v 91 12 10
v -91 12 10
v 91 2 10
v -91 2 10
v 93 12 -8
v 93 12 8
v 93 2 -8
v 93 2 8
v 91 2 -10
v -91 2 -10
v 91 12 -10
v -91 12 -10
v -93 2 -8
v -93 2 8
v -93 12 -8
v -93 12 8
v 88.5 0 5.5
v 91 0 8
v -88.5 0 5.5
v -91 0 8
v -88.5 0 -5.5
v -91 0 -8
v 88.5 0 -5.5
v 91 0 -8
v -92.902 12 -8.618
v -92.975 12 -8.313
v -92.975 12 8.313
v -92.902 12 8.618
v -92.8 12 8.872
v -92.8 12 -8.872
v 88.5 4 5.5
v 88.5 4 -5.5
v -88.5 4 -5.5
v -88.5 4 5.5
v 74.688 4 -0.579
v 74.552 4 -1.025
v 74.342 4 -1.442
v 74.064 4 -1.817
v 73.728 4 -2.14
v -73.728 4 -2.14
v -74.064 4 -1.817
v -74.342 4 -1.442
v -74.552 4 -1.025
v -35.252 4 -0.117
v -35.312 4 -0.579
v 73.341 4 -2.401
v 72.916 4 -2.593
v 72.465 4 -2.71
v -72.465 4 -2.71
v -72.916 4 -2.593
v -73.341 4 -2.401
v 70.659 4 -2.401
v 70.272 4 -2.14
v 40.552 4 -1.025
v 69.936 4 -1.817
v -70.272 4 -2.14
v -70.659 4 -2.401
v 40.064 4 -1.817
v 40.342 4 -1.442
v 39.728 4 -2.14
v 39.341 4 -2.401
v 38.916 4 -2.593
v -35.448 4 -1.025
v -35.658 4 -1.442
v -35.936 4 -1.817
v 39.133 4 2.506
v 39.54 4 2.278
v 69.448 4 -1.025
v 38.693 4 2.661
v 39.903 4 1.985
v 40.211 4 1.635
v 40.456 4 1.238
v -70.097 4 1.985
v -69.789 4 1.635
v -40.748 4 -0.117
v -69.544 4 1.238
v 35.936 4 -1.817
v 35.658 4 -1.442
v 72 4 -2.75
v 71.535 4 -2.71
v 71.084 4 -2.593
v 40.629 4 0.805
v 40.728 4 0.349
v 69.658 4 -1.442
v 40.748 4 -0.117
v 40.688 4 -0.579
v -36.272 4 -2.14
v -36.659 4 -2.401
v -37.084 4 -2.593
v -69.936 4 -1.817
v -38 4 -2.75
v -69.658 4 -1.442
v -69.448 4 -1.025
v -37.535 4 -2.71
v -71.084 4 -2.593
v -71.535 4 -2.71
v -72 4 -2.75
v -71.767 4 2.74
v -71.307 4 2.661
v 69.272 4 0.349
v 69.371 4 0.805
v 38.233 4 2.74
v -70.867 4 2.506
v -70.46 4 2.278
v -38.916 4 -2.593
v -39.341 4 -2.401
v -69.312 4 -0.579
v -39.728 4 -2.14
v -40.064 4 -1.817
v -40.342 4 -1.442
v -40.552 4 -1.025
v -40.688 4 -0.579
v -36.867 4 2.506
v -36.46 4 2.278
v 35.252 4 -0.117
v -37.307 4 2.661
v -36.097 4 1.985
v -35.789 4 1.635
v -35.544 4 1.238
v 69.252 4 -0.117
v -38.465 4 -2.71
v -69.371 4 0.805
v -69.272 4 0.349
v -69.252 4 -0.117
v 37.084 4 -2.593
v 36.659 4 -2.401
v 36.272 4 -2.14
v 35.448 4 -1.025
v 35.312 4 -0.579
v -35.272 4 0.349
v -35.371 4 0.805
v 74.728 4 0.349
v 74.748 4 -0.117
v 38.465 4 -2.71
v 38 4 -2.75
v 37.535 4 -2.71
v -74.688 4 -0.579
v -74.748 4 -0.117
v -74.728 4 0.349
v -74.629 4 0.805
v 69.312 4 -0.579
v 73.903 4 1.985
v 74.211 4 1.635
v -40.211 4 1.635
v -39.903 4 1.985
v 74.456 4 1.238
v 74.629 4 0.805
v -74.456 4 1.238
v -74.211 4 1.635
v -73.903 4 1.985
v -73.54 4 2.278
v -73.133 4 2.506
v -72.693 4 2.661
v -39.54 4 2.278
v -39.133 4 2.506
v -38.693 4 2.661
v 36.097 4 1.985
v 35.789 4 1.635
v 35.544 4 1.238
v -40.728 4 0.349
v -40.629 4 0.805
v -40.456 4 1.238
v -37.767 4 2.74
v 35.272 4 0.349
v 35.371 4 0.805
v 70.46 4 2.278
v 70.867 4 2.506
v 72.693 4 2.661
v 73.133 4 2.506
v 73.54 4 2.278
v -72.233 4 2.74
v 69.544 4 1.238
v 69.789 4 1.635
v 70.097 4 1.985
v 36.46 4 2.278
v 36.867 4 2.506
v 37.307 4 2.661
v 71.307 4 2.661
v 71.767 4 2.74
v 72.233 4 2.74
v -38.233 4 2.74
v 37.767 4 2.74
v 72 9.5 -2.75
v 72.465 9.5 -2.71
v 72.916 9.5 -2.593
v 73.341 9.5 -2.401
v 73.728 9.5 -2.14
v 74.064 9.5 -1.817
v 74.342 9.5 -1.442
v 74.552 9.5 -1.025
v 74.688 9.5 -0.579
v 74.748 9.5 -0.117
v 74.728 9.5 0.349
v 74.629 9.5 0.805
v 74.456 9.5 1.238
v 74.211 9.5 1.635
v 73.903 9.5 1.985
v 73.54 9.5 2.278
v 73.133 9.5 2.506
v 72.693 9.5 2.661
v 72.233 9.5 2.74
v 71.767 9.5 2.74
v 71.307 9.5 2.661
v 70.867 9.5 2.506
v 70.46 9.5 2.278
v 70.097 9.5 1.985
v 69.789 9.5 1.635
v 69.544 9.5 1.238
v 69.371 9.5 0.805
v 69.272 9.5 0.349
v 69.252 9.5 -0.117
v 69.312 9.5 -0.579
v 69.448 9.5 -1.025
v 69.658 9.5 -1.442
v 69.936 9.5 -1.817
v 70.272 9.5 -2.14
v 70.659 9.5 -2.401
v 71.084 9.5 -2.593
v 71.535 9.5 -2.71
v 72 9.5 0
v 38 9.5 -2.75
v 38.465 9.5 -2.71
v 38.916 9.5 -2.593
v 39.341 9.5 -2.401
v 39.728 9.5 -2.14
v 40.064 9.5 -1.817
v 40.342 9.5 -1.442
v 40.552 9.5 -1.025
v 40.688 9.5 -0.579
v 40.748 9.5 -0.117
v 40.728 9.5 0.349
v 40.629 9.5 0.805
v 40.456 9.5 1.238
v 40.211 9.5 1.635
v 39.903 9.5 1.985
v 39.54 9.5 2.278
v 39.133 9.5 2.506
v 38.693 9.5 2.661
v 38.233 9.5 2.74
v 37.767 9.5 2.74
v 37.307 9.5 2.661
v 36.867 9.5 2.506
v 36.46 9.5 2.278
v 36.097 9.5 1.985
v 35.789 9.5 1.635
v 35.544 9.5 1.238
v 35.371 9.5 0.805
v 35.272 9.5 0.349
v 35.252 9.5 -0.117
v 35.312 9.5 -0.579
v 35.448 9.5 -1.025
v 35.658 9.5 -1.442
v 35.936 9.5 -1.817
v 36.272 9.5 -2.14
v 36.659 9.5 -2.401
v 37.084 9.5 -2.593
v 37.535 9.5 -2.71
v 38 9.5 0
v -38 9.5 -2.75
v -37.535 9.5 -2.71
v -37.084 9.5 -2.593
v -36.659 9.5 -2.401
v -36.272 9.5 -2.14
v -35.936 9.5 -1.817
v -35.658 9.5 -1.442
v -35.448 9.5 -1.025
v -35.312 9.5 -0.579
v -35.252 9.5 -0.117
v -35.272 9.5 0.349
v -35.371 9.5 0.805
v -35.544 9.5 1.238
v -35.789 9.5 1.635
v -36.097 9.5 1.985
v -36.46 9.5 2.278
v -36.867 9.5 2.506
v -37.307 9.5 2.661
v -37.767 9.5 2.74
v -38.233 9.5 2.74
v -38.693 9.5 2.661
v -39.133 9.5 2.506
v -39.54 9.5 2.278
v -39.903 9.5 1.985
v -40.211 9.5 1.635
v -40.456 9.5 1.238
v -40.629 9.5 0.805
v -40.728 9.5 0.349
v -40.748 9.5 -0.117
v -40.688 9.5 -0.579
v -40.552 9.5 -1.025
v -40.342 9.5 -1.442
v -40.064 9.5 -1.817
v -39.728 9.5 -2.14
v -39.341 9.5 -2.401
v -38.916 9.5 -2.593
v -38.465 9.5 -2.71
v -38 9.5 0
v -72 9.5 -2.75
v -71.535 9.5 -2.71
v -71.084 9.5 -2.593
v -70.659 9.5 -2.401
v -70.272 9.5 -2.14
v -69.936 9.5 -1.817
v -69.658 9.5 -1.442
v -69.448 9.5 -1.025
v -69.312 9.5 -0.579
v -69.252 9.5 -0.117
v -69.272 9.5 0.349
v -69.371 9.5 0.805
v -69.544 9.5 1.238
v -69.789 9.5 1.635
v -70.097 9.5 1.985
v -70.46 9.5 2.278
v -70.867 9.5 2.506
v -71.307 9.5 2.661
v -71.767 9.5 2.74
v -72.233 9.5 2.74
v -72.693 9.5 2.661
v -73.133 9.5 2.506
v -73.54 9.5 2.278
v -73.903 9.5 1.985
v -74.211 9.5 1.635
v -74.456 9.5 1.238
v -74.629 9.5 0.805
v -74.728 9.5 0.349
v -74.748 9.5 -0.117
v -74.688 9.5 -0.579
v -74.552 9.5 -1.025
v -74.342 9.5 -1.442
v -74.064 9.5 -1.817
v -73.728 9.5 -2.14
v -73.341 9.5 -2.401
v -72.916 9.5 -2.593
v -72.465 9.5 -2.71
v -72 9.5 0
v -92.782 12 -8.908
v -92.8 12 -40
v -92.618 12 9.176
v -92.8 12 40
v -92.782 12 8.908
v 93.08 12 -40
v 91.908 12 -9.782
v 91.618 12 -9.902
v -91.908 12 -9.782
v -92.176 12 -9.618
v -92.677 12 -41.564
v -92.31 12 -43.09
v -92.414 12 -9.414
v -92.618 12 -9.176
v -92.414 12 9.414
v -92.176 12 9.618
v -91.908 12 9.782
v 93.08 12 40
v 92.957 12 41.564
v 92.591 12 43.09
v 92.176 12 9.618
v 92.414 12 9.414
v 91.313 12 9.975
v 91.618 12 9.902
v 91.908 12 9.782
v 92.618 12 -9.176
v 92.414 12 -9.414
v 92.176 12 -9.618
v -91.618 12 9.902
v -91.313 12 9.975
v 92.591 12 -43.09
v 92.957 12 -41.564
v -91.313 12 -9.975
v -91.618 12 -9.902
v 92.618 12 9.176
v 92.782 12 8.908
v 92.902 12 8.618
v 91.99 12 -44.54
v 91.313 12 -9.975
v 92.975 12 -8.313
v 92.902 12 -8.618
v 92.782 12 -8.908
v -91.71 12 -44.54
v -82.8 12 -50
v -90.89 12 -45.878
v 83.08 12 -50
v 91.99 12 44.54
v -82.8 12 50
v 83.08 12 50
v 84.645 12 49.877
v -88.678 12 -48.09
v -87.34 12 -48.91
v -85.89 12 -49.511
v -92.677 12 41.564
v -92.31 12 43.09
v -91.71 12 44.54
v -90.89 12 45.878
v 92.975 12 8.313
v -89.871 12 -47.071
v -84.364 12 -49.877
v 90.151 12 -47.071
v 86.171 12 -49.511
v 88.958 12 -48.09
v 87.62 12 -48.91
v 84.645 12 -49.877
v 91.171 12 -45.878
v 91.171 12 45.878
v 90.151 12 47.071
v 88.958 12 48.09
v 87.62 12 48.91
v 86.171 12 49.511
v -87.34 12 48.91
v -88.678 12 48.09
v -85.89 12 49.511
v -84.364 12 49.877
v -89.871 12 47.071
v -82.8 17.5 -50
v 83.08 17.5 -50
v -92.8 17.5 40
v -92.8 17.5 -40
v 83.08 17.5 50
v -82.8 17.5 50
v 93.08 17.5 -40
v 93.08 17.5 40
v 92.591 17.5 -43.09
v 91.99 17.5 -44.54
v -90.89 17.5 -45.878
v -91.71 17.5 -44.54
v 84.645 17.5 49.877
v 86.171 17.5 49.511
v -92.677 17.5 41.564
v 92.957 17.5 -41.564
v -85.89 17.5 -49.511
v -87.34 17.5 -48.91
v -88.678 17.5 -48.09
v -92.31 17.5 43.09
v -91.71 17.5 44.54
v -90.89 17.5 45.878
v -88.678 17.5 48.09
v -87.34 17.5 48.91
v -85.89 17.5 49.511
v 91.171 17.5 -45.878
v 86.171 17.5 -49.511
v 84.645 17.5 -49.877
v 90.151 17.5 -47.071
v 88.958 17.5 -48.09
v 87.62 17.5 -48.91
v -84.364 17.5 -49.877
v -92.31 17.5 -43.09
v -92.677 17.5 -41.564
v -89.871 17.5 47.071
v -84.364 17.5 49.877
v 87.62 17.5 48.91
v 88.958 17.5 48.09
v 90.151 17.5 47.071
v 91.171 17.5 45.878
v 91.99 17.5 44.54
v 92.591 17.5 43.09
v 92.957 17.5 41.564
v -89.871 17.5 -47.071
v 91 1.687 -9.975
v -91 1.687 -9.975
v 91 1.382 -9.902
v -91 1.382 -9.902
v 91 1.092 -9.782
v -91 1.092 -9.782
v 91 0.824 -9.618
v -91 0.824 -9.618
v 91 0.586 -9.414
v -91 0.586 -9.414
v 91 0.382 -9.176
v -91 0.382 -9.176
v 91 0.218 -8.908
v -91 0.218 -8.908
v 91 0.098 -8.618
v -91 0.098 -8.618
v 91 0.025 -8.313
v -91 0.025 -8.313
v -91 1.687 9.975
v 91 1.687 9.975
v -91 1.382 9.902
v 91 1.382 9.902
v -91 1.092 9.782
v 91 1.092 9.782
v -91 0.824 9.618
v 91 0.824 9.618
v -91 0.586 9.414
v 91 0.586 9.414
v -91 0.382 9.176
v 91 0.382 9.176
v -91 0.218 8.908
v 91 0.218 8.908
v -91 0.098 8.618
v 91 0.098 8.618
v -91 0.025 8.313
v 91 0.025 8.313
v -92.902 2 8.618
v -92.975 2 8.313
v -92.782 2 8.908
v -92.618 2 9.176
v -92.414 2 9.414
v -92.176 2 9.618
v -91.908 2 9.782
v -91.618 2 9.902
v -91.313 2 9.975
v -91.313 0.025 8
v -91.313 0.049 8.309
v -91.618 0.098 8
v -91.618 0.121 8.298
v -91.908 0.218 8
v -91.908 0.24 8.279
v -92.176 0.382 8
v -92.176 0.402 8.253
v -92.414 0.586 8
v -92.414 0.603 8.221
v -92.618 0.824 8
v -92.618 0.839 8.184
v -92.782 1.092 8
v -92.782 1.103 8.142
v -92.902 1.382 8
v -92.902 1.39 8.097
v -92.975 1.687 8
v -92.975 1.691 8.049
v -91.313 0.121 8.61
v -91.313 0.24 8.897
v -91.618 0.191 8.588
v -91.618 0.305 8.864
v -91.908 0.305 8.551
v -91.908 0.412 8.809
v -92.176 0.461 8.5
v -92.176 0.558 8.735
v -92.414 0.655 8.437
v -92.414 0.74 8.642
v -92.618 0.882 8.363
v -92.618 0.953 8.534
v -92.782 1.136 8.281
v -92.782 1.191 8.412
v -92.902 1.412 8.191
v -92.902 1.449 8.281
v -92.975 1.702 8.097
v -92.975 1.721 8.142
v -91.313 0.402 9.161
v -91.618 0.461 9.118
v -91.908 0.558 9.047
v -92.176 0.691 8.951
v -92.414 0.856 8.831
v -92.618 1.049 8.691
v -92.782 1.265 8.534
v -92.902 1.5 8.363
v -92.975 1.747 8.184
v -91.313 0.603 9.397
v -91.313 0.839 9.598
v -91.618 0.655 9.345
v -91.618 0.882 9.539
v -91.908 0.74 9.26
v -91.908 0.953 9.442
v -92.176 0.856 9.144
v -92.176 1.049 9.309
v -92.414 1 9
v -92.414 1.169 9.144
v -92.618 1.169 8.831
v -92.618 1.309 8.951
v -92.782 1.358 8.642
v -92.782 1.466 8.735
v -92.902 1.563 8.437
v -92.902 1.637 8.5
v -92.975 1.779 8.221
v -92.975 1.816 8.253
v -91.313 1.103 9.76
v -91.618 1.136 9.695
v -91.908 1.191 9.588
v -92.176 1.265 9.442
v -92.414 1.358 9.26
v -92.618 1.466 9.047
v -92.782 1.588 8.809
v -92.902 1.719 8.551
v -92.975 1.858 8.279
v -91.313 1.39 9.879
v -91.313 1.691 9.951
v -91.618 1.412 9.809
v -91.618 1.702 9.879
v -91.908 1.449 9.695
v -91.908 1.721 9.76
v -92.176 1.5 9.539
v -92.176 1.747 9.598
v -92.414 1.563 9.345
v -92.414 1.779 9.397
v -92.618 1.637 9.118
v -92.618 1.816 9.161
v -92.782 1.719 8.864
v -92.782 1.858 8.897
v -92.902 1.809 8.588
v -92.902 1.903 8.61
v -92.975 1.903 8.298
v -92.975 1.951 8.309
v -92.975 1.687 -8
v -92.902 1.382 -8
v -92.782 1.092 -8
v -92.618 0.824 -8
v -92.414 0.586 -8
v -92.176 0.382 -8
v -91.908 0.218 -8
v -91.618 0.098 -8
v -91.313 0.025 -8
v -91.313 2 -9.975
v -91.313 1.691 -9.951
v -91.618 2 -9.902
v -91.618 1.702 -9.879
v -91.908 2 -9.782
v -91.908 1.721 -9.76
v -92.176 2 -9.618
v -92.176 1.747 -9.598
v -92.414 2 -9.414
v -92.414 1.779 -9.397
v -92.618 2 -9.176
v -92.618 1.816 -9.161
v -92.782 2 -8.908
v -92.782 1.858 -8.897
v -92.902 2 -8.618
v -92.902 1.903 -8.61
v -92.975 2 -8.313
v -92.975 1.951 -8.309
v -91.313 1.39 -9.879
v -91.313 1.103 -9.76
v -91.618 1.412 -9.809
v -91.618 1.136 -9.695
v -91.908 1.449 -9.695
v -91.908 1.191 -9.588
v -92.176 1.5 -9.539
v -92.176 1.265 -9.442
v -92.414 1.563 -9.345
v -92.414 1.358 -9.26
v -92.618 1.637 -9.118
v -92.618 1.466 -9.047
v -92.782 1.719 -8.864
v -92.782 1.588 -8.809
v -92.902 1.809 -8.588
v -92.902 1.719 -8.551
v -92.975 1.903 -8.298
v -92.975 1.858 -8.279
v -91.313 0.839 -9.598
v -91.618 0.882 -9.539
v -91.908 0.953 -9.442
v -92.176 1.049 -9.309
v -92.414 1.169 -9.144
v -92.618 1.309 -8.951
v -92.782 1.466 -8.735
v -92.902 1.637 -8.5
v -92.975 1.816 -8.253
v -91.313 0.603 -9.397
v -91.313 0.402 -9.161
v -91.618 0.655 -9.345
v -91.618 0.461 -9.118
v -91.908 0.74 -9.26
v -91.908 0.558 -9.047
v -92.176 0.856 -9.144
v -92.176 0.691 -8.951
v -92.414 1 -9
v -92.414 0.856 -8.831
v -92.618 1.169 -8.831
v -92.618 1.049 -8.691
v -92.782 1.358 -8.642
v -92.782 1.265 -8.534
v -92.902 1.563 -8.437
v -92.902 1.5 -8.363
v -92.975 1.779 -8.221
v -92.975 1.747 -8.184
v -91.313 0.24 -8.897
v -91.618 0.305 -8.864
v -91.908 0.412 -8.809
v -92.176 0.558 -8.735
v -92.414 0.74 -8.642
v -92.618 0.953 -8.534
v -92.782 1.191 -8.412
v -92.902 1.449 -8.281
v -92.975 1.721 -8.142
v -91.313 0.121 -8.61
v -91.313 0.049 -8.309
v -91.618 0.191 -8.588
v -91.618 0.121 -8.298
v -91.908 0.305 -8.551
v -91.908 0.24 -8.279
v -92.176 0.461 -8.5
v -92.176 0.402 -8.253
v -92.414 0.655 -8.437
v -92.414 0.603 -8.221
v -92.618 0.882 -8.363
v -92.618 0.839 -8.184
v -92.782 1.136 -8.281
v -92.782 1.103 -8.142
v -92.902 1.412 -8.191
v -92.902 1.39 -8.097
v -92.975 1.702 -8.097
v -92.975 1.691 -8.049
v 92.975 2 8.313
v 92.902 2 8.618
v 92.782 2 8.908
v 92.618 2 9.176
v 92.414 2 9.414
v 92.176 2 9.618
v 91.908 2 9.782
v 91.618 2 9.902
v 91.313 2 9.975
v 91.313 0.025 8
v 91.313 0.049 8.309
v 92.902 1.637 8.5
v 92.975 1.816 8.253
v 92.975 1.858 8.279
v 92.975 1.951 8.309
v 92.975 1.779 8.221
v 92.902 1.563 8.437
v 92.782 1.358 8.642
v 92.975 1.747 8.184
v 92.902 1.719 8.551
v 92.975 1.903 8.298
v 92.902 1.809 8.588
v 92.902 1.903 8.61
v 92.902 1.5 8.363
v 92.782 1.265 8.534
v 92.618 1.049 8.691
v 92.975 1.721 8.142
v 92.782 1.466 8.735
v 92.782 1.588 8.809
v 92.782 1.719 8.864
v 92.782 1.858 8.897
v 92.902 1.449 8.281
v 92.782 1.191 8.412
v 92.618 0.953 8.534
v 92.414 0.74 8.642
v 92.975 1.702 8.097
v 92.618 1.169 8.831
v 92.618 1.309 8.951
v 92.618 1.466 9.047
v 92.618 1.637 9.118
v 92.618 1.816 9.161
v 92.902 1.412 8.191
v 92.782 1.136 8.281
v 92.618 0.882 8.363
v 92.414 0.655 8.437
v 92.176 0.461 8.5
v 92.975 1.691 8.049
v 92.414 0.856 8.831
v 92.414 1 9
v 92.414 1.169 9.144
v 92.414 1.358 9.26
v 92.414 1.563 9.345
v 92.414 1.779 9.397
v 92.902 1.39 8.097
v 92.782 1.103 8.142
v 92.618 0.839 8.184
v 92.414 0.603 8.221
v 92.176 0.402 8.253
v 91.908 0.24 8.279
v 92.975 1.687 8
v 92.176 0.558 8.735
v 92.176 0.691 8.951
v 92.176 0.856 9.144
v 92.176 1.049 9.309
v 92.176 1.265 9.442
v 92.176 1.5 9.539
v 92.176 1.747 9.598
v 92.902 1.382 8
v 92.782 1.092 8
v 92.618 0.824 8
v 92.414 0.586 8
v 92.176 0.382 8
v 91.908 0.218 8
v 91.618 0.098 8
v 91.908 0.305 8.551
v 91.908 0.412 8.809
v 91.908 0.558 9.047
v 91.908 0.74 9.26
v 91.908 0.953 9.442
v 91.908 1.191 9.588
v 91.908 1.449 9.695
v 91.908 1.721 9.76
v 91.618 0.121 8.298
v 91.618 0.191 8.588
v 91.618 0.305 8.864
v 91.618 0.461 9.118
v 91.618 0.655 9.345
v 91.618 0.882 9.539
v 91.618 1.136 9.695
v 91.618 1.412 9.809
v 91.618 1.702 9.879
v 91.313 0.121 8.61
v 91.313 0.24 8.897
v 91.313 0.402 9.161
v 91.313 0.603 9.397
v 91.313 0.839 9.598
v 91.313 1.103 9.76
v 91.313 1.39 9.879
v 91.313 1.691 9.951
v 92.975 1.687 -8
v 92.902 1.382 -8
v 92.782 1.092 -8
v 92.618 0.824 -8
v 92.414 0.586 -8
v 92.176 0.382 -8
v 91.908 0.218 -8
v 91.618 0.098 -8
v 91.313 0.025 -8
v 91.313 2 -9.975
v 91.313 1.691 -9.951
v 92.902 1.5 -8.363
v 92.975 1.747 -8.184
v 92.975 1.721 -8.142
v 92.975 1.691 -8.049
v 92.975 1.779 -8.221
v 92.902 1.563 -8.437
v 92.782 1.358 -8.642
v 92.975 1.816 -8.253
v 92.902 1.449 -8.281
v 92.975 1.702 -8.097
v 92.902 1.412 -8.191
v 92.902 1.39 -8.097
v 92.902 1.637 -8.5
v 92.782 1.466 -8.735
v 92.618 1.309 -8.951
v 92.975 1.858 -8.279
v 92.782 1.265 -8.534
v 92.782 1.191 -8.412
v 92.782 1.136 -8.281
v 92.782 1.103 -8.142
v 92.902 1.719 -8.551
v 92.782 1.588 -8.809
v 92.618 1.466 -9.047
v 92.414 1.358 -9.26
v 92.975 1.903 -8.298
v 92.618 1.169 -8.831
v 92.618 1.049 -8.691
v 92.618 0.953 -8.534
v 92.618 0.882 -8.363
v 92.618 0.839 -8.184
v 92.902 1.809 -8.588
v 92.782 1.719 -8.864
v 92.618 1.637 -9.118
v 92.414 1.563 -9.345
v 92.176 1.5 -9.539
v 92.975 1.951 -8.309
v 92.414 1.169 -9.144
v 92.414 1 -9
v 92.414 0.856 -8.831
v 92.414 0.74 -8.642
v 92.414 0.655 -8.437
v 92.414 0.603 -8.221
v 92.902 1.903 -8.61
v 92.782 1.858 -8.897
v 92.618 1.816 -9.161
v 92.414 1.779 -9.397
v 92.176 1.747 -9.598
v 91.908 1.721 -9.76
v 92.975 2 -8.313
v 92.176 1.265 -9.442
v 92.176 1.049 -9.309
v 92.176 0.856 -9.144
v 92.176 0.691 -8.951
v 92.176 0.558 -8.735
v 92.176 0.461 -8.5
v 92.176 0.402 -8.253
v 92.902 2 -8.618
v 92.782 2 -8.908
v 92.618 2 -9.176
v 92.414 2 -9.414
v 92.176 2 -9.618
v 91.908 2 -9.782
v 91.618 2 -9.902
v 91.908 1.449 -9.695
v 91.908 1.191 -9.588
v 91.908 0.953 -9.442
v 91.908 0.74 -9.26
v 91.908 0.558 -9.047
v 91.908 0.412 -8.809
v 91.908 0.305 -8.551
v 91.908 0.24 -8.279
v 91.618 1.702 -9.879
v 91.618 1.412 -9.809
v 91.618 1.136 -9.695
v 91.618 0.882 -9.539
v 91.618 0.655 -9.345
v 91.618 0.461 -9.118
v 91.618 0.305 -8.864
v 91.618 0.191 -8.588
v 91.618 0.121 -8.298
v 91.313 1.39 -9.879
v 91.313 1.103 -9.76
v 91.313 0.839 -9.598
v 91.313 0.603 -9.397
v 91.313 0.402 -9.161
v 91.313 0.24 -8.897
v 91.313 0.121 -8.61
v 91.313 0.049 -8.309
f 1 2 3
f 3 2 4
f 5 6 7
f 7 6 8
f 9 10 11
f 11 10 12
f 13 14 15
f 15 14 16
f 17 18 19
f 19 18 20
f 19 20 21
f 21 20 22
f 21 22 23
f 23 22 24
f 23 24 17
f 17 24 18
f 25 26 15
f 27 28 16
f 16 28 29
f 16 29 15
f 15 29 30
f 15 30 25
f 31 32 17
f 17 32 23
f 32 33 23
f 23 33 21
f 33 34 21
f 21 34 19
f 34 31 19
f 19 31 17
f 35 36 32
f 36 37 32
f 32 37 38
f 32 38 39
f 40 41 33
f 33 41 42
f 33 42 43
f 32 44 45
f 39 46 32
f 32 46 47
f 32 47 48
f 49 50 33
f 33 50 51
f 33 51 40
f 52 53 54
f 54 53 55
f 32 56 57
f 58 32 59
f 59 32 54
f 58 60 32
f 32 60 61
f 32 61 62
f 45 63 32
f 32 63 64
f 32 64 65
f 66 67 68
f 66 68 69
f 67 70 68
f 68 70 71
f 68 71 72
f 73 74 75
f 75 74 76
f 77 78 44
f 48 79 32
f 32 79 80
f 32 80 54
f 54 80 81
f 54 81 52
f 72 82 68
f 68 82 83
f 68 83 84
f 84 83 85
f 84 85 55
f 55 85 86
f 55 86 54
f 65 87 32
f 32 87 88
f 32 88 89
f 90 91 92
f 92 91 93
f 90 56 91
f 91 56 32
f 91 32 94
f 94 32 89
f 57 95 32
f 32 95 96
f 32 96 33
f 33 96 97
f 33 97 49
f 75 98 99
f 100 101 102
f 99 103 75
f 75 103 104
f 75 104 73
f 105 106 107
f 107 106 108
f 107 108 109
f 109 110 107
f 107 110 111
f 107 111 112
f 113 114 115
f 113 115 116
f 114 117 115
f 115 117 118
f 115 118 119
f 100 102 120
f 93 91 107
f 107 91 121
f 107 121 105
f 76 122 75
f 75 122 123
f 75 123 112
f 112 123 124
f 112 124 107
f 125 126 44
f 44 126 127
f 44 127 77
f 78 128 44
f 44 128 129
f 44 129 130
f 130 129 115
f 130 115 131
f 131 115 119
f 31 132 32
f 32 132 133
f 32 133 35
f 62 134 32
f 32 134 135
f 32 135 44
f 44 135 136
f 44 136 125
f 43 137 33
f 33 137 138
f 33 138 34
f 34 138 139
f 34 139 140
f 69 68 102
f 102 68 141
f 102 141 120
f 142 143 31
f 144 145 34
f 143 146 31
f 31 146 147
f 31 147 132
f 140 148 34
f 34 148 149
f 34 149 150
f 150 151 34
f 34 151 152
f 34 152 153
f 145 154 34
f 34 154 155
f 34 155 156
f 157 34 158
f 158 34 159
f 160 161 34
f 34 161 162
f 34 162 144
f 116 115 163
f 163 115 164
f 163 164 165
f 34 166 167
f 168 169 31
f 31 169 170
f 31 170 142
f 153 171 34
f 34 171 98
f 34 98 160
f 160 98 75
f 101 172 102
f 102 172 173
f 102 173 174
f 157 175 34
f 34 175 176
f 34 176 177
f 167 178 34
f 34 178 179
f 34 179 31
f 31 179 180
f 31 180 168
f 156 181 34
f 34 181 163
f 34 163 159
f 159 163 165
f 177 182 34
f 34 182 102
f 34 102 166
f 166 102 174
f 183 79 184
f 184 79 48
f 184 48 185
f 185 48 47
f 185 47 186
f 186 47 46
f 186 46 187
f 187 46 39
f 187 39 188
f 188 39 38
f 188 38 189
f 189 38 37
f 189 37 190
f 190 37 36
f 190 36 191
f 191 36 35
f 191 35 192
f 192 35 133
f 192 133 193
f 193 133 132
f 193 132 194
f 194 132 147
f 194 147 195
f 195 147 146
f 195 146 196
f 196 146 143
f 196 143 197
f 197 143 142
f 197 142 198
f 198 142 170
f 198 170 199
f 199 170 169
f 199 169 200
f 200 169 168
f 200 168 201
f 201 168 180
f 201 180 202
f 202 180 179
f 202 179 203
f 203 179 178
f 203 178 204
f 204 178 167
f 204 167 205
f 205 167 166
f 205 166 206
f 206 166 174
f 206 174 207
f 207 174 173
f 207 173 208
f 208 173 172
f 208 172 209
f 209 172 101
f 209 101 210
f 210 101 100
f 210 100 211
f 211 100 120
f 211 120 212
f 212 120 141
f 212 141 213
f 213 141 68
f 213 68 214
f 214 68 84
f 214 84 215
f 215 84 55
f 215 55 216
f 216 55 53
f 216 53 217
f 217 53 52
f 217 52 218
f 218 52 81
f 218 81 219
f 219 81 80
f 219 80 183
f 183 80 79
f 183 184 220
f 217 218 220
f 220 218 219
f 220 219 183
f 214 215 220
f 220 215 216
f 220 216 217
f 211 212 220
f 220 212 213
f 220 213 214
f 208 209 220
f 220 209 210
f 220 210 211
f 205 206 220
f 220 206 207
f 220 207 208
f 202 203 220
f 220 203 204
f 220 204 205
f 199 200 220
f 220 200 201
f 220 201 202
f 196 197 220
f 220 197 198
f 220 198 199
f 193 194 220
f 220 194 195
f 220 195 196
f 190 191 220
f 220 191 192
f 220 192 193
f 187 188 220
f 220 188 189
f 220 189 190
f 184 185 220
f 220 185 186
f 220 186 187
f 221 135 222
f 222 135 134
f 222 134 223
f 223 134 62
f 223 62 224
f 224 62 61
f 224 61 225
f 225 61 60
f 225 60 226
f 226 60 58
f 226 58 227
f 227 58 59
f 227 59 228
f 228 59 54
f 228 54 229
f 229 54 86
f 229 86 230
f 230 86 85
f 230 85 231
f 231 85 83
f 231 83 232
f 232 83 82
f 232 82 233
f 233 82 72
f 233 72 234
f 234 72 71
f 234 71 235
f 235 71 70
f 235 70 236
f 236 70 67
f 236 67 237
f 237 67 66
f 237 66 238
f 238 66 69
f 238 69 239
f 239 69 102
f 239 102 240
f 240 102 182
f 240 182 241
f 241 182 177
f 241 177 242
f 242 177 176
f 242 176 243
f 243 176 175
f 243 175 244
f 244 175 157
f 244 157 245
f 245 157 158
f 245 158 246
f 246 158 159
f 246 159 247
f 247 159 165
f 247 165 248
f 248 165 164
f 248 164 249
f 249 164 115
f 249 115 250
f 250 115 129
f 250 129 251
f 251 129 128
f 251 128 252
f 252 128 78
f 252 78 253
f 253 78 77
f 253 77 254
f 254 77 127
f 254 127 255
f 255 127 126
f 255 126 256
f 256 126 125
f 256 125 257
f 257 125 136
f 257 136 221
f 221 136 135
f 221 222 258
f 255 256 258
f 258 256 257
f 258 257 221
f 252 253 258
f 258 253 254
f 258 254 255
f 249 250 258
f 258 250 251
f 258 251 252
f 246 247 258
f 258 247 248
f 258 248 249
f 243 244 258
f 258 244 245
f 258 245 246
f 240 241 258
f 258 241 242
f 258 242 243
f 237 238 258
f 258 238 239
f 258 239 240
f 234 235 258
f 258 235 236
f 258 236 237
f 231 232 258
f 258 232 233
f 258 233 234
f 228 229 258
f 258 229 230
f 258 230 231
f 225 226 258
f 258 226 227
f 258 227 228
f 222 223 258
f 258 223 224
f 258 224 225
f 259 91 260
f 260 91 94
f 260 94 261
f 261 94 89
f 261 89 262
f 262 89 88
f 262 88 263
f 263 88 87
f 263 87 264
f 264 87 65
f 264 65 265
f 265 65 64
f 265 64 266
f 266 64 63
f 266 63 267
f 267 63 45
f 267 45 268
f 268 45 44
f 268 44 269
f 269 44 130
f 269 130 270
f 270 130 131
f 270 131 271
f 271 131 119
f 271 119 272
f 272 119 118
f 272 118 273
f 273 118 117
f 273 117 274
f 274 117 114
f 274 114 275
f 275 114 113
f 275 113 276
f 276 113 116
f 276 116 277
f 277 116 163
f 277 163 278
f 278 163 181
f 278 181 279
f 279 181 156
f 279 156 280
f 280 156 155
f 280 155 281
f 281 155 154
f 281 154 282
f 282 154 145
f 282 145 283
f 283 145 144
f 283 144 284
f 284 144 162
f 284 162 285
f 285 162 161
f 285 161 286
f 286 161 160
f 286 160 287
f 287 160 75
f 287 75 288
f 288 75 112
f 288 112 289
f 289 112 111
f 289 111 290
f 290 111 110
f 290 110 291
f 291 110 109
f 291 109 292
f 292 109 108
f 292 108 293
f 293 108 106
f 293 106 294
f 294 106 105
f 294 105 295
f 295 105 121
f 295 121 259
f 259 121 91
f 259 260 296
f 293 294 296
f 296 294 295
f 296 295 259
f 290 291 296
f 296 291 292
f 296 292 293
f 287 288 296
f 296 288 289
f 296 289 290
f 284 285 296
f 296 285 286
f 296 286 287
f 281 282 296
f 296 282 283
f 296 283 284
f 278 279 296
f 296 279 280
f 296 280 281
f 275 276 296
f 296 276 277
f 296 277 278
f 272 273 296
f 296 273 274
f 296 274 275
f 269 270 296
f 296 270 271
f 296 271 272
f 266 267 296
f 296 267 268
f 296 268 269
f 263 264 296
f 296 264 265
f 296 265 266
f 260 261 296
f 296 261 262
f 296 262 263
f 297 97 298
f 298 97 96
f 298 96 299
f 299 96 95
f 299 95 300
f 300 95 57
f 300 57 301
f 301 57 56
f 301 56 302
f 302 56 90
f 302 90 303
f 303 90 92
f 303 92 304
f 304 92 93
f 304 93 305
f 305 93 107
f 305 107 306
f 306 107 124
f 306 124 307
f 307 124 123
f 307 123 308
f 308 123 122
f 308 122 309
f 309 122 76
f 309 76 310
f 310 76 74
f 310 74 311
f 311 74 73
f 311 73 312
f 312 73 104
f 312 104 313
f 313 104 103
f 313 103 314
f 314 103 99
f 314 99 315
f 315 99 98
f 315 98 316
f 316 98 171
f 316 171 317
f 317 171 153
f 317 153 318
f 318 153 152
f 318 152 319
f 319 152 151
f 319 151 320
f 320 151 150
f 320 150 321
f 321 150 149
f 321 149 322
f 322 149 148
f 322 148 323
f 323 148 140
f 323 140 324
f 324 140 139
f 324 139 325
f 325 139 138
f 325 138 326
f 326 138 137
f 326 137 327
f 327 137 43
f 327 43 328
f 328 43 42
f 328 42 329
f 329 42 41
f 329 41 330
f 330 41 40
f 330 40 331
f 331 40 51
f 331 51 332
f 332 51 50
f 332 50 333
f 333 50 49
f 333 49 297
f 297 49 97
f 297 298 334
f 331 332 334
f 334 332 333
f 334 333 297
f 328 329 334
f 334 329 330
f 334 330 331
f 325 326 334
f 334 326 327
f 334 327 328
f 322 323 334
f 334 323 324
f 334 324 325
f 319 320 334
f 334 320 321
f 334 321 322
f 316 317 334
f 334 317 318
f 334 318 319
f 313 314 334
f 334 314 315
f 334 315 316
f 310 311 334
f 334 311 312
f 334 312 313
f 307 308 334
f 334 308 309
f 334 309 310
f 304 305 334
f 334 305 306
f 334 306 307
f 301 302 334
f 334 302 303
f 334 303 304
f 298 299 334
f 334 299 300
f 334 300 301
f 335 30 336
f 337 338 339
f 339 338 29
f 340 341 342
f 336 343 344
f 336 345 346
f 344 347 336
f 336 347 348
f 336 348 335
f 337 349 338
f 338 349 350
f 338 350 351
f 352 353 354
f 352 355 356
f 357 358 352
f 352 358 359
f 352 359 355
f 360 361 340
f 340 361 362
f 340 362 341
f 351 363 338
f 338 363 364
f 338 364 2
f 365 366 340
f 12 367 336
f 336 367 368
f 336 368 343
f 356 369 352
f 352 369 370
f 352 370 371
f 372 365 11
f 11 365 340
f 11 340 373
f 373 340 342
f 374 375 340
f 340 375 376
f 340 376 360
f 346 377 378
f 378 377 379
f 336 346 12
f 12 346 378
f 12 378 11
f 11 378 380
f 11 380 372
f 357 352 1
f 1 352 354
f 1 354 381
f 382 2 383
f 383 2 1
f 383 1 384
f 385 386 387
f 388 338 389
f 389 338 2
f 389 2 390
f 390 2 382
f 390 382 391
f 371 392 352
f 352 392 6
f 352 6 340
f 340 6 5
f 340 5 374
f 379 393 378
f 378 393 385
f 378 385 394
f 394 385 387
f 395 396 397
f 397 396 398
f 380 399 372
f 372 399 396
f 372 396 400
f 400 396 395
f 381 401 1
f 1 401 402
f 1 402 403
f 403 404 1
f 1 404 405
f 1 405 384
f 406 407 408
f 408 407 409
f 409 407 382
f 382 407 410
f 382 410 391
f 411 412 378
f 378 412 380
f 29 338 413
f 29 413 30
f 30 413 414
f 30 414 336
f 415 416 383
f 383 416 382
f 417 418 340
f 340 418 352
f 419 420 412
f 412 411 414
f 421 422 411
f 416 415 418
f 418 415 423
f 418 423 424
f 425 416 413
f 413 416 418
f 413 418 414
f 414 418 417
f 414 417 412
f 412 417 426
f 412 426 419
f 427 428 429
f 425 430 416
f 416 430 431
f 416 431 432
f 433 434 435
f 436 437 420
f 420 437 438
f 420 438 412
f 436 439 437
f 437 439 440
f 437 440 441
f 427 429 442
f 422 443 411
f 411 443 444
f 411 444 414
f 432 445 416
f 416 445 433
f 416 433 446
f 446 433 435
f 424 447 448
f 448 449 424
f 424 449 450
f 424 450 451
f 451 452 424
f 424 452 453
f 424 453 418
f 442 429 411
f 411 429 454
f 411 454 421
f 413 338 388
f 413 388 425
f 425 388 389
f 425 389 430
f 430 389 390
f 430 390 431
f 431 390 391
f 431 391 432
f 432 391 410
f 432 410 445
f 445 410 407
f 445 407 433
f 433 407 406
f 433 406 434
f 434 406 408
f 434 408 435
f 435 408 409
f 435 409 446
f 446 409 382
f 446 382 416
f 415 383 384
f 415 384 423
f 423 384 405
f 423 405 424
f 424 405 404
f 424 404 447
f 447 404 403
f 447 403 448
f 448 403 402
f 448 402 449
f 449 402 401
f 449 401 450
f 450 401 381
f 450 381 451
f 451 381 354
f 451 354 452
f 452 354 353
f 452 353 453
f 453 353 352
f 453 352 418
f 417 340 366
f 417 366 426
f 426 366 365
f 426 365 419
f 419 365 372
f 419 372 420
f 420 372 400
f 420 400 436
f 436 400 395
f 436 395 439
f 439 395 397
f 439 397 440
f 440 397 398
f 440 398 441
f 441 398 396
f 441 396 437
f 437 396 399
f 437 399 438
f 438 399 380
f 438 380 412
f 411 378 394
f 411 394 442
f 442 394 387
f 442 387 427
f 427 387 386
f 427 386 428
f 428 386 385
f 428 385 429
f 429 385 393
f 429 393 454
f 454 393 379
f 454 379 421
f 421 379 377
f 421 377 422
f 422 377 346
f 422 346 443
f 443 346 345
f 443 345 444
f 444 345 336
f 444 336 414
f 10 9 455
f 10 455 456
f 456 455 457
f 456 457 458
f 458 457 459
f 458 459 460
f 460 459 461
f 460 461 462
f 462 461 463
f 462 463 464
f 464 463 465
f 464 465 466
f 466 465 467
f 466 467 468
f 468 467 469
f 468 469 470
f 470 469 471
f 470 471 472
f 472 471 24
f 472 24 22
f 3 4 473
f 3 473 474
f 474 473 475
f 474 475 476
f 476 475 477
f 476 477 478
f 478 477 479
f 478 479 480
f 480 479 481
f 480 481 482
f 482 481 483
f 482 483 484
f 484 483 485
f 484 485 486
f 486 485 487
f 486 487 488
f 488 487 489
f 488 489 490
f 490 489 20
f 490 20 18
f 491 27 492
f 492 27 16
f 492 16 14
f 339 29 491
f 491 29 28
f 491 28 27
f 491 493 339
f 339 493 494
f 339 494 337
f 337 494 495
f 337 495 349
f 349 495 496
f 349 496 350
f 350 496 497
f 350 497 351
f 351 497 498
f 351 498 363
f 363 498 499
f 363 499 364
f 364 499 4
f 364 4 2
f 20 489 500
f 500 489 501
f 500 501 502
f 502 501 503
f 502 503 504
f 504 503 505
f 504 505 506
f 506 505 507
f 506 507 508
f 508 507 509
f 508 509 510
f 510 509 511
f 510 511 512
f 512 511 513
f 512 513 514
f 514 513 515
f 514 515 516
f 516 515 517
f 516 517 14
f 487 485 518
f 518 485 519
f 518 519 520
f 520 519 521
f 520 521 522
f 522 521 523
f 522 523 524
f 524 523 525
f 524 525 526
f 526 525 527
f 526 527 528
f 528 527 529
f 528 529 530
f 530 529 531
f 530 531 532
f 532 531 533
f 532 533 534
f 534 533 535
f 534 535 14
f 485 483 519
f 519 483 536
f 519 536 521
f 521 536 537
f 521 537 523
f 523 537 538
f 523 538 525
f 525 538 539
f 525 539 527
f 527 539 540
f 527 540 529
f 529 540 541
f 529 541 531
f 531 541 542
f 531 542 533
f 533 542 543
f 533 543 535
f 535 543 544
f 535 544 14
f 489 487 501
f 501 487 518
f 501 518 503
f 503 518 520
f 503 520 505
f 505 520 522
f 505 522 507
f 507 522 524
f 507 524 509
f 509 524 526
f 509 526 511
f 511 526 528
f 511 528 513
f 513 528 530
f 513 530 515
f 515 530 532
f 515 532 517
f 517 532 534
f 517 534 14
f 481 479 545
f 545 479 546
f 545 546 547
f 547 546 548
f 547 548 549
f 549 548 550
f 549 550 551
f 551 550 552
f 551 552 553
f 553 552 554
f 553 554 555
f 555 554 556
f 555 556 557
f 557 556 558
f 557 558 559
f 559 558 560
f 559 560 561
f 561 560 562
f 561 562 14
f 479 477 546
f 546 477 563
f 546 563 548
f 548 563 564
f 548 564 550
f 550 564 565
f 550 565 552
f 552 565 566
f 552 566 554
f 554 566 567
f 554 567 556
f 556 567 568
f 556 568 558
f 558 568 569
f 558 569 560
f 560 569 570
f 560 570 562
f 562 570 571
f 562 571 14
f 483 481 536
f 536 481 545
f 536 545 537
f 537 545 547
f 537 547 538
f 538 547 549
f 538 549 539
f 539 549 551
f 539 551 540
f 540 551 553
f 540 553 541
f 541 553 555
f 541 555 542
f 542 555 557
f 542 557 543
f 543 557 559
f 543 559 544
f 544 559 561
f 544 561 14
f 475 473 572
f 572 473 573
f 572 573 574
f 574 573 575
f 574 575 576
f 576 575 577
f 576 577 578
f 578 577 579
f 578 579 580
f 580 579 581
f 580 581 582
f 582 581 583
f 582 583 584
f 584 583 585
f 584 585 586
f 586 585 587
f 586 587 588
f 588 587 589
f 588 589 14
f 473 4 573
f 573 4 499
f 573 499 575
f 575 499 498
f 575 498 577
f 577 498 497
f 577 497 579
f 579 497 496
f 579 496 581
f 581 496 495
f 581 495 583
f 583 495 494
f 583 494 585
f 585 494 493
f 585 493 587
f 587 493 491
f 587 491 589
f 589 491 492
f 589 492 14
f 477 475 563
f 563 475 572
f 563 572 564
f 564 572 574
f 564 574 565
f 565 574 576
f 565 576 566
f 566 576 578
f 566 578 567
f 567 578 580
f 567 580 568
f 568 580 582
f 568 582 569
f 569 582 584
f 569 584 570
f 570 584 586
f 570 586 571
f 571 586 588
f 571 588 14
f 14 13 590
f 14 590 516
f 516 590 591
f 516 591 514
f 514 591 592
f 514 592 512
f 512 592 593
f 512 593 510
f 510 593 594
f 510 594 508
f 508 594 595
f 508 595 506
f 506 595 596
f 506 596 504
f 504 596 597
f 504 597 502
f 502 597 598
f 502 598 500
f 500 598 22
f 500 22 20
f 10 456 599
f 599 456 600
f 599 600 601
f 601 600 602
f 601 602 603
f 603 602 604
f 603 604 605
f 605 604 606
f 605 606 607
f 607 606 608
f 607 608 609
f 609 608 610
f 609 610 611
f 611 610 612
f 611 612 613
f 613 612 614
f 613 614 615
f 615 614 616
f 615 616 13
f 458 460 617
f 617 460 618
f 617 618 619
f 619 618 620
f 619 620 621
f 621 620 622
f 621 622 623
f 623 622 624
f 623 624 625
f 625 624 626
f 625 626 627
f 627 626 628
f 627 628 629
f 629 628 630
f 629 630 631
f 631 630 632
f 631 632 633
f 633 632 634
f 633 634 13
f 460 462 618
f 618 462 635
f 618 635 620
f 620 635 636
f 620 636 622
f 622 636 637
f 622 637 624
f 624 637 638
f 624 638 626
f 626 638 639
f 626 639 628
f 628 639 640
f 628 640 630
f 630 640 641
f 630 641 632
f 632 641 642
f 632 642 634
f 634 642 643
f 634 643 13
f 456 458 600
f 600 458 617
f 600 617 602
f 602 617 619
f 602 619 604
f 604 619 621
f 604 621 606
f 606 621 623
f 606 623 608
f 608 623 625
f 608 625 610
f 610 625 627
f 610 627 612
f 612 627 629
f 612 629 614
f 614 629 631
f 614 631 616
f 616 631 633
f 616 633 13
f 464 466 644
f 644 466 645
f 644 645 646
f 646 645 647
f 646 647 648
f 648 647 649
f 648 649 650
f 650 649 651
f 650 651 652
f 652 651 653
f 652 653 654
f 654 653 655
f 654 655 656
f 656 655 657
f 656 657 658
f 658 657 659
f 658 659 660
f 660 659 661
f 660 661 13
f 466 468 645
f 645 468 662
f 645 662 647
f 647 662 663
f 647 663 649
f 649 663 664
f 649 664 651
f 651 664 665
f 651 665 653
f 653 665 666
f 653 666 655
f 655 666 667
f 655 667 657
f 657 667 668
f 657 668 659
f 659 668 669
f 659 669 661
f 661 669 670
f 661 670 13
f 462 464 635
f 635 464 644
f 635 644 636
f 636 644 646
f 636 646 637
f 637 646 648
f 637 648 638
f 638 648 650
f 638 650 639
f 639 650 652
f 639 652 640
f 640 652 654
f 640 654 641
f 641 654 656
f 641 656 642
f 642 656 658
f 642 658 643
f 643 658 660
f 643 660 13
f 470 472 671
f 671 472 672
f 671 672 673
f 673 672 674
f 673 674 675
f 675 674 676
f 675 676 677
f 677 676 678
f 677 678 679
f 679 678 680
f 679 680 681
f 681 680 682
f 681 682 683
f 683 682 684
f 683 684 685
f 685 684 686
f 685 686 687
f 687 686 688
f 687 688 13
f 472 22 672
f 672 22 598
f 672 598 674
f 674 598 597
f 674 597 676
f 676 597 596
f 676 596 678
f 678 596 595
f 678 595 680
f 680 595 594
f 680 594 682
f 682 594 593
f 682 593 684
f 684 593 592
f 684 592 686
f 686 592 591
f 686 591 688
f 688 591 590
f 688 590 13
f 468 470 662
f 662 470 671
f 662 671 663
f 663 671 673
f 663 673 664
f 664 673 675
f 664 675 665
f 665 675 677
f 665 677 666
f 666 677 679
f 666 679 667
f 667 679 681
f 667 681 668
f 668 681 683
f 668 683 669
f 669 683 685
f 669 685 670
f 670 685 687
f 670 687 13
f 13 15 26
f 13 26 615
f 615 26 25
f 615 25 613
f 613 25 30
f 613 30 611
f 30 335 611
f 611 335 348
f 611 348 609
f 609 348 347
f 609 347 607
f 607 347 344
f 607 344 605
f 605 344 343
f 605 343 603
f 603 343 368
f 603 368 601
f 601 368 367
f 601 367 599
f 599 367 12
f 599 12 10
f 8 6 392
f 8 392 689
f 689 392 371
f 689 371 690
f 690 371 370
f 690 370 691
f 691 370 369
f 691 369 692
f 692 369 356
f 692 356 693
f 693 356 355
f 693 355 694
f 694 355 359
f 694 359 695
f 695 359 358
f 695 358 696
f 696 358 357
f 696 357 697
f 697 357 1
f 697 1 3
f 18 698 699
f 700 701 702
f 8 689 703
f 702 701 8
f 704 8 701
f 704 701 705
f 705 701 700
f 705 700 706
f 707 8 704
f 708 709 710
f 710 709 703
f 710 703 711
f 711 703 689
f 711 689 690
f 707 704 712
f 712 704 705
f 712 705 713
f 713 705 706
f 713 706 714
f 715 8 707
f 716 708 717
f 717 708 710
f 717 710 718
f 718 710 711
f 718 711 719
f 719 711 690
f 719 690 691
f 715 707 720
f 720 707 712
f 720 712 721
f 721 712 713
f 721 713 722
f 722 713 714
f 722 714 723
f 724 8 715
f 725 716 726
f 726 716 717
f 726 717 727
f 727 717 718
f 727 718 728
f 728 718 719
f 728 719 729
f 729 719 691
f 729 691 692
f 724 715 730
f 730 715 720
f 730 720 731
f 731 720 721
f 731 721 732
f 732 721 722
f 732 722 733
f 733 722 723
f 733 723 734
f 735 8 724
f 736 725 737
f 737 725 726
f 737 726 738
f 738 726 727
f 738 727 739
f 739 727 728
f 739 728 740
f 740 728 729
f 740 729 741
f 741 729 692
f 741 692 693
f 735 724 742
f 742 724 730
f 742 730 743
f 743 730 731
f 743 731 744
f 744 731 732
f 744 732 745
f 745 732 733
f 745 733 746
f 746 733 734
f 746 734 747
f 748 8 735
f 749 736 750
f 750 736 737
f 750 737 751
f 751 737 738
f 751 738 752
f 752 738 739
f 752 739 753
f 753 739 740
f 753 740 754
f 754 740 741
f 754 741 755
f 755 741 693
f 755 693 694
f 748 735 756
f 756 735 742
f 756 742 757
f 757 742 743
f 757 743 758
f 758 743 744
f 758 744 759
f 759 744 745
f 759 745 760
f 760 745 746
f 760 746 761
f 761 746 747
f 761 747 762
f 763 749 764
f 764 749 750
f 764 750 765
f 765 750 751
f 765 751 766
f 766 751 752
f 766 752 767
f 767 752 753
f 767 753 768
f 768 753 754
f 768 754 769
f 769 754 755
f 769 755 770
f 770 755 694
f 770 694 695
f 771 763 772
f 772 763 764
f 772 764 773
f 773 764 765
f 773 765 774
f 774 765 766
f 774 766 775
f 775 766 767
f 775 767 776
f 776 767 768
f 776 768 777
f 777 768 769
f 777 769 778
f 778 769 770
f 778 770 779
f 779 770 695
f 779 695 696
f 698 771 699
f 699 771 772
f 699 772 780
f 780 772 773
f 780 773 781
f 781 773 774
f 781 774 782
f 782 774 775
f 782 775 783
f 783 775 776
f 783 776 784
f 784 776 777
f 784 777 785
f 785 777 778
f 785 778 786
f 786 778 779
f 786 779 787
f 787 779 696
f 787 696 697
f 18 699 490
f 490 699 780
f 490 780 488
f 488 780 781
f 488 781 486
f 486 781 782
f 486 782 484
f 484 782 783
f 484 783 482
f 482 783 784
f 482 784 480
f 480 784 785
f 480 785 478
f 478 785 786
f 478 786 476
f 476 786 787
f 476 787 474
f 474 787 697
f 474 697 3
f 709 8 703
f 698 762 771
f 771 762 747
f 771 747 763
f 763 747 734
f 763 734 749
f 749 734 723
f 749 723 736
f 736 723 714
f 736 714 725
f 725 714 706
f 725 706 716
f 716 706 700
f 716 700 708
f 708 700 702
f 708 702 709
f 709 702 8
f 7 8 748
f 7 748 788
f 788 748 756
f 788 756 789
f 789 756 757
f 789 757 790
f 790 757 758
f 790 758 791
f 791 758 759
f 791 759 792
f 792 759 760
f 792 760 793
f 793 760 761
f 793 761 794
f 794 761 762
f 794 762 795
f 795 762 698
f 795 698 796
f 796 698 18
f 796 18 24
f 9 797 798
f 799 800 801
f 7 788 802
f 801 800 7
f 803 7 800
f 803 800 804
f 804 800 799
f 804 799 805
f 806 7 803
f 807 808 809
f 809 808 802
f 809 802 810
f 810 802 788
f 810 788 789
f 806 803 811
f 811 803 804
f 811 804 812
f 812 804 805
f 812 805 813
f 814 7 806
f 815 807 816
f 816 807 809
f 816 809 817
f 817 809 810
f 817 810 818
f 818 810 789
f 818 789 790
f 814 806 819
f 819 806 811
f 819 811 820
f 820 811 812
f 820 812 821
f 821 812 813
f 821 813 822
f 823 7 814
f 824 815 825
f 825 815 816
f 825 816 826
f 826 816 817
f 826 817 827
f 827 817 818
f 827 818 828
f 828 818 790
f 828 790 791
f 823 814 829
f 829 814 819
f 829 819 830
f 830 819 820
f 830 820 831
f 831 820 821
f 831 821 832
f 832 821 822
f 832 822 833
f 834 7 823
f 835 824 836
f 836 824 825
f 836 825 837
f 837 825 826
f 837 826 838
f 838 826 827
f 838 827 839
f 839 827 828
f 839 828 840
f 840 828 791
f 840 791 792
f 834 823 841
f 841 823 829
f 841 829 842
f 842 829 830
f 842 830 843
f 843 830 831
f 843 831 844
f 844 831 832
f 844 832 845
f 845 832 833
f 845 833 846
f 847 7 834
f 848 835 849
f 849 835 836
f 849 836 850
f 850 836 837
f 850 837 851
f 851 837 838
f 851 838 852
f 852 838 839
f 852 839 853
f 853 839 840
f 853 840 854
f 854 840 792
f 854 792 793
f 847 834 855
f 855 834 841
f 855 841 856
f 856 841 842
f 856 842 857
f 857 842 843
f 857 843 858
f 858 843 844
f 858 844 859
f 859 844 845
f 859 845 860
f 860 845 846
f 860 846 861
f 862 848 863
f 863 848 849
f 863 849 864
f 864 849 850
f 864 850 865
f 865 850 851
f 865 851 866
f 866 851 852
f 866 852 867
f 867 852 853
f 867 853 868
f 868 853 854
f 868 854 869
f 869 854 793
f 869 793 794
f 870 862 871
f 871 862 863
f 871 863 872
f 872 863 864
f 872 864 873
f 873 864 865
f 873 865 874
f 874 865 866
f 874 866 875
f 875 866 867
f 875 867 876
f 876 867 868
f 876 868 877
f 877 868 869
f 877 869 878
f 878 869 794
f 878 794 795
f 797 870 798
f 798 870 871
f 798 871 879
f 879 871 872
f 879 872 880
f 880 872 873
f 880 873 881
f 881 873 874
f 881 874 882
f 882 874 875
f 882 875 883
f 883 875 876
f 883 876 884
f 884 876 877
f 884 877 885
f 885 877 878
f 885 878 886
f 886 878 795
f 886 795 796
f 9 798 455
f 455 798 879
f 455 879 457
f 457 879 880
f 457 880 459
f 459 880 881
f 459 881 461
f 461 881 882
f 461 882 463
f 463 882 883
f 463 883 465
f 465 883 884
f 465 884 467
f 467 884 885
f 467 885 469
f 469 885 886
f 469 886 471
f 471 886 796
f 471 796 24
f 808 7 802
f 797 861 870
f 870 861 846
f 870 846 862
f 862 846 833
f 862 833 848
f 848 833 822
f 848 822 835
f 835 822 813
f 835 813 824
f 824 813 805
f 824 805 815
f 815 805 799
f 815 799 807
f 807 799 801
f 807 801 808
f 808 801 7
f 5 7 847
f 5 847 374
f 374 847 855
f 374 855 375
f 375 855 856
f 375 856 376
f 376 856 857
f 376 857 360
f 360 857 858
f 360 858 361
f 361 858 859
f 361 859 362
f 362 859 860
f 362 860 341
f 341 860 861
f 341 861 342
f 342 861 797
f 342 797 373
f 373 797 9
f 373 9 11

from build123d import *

# Parameters (mm, degrees)
SKETCH_1_W          = 186
SKETCH_1_H          = 20
EXTRUDE_1_DEPTH     = 14
SKETCH_2_W          = 186
SKETCH_2_H          = 20
CUT_EXTRUDE_2_DEPTH = 2
SKETCH_3_W          = 177
SKETCH_3_H          = 11
CUT_EXTRUDE_3_DEPTH = 4
SKETCH_4_R          = 2.75
CUT_EXTRUDE_6_DEPTH = 5.5
SKETCH_5_W          = 185.880265185
SKETCH_5_H          = 100
EXTRUDE_2_DEPTH     = 5.5
FILLET_1_R          = 10
FILLET_2_R          = 10
FILLET_3_R          = 10
FILLET_4_R          = 10
FILLET_6_R          = 2
FILLET_7_R          = 2
FILLET_8_R          = 2
FILLET_9_R          = 2


with BuildPart() as part:
    # 草图1 → 凸台-拉伸1 (new body)
    with BuildSketch(Plane(origin=(0, 0, 0), x_dir=(1, 0, 0), z_dir=(0, 1, 0))):
        Rectangle(SKETCH_1_W, SKETCH_1_H)
    extrude(amount=EXTRUDE_1_DEPTH)

    # 草图2 → 切除-拉伸2 (cut)
    with BuildSketch(Plane(origin=(0, 14, 0), x_dir=(1, 0, 0), z_dir=(0, 1, 0))):
        Rectangle(SKETCH_2_W, SKETCH_2_H)
    extrude(amount=-CUT_EXTRUDE_2_DEPTH, mode=Mode.SUBTRACT)

    # 草图3 → 切除-拉伸3 (cut)
    with BuildSketch(Plane.XZ):
        Rectangle(SKETCH_3_W, SKETCH_3_H)
    extrude(amount=-CUT_EXTRUDE_3_DEPTH, mode=Mode.SUBTRACT)

    # 草图4 → 切除-拉伸6 (cut)
    with BuildSketch(Plane.XZ.offset(-4)):
        with Locations(Location((-72, 0, 0), (0, 0, 270))):
            Circle(SKETCH_4_R)
        with Locations(Location((-38, 0, 0), (0, 0, 270))):
            Circle(SKETCH_4_R)
        with Locations(Location((38, 0, 0), (0, 0, 270))):
            Circle(SKETCH_4_R)
        with Locations(Location((72, 0, 0), (0, 0, 270))):
            Circle(SKETCH_4_R)
    extrude(amount=-CUT_EXTRUDE_6_DEPTH, mode=Mode.SUBTRACT)

    # 草图5 → 凸台-拉伸2 (add)
    with BuildSketch(Plane(origin=(0, 12, 0), x_dir=(1, 0, 0), z_dir=(0, 1, 0))):
        with Locations((0.140286992, 0)):
            Rectangle(SKETCH_5_W, SKETCH_5_H)
    extrude(amount=EXTRUDE_2_DEPTH)

    # 圆角1
    fillet_1_edges = [part.edges().sort_by_distance(p)[0] for p in [
        (-92.7998456, 14.75, 50),
    ]]
    fillet(fillet_1_edges, radius=FILLET_1_R)

    # 圆角2
    fillet_2_edges = [part.edges().sort_by_distance(p)[0] for p in [
        (93.080419585, 14.75, 50),
    ]]
    fillet(fillet_2_edges, radius=FILLET_2_R)

    # 圆角3
    fillet_3_edges = [part.edges().sort_by_distance(p)[0] for p in [
        (93.080419585, 14.75, -50),
    ]]
    fillet(fillet_3_edges, radius=FILLET_3_R)

    # 圆角4
    fillet_4_edges = [part.edges().sort_by_distance(p)[0] for p in [
        (-92.7998456, 14.75, -50),
    ]]
    fillet(fillet_4_edges, radius=FILLET_4_R)

    # 圆角6
    fillet_6_edges = [part.edges().sort_by_distance(p)[0] for p in [
        (0, 0, -10),
    ]]
    fillet(fillet_6_edges, radius=FILLET_6_R)

    # 圆角7
    fillet_7_edges = [part.edges().sort_by_distance(p)[0] for p in [
        (0, 0, 10),
    ]]
    fillet(fillet_7_edges, radius=FILLET_7_R)

    # 圆角8
    # the kernel refuses this fillet: 2 mm, written as the material it takes off along each edge
    with BuildSketch(Plane(origin=(-93, 0, 8), x_dir=(1, 0, 0), z_dir=(0, 0, -1))) as fillet_8_piece_1:
        with BuildLine():
            CenterArc((FILLET_8_R, -FILLET_8_R), FILLET_8_R, 90, 90)
            Line((0, -FILLET_8_R), (0, 0))
            Line((0, 0), (FILLET_8_R, 0))
        make_face()
    extrude(amount=16, mode=Mode.SUBTRACT)
    with BuildSketch(Plane(origin=(-93, 2, -8), x_dir=(0, 0, -1), z_dir=(0, 1, 0))) as fillet_8_piece_2:
        with BuildLine():
            CenterArc((2 - FILLET_8_R, -FILLET_8_R), FILLET_8_R, 0, 90)
            Line((2 - FILLET_8_R, 0), (2, 0))
            Line((2, 0), (2, -FILLET_8_R))
        make_face()
    revolve(axis=Axis((-93, 2, -8), (-1, 0, 0)), revolution_arc=90, mode=Mode.SUBTRACT)
    with BuildSketch(Plane(origin=(-93, 2, 8), x_dir=(0, -1, 0), z_dir=(0, 0, -1))) as fillet_8_piece_3:
        with BuildLine():
            CenterArc((2 - FILLET_8_R, -FILLET_8_R), FILLET_8_R, 0, 90)
            Line((2 - FILLET_8_R, 0), (2, 0))
            Line((2, 0), (2, -FILLET_8_R))
        make_face()
    revolve(axis=Axis((-93, 2, 8), (-1, 0, 0)), revolution_arc=90, mode=Mode.SUBTRACT)
    with BuildSketch(Plane(origin=(-93, 2, 10), x_dir=(1, 0, 0), z_dir=(0, 1, 0))) as fillet_8_piece_4:
        with BuildLine():
            CenterArc((FILLET_8_R, FILLET_8_R), FILLET_8_R, 180, 90)
            Line((0, FILLET_8_R), (0, 0))
            Line((0, 0), (FILLET_8_R, 0))
        make_face()
    extrude(amount=10, mode=Mode.SUBTRACT)
    with BuildSketch(Plane(origin=(-93, 2, -10), x_dir=(1, 0, 0), z_dir=(0, 1, 0))) as fillet_8_piece_5:
        with BuildLine():
            CenterArc((FILLET_8_R, -FILLET_8_R), FILLET_8_R, 90, 90)
            Line((0, -FILLET_8_R), (0, 0))
            Line((0, 0), (FILLET_8_R, 0))
        make_face()
    extrude(amount=10, mode=Mode.SUBTRACT)

    # 圆角9
    fillet_9_edges = [part.edges().sort_by_distance(p)[0] for p in [
        (93, 0, 0),
        (93, 0.585786438, -9.414213562),
        (93, 0.585786438, 9.414213562),
        (93, 7, -10),
        (93, 7, 10),
    ]]
    fillet(fillet_9_edges, radius=FILLET_9_R)


solid = part.part
